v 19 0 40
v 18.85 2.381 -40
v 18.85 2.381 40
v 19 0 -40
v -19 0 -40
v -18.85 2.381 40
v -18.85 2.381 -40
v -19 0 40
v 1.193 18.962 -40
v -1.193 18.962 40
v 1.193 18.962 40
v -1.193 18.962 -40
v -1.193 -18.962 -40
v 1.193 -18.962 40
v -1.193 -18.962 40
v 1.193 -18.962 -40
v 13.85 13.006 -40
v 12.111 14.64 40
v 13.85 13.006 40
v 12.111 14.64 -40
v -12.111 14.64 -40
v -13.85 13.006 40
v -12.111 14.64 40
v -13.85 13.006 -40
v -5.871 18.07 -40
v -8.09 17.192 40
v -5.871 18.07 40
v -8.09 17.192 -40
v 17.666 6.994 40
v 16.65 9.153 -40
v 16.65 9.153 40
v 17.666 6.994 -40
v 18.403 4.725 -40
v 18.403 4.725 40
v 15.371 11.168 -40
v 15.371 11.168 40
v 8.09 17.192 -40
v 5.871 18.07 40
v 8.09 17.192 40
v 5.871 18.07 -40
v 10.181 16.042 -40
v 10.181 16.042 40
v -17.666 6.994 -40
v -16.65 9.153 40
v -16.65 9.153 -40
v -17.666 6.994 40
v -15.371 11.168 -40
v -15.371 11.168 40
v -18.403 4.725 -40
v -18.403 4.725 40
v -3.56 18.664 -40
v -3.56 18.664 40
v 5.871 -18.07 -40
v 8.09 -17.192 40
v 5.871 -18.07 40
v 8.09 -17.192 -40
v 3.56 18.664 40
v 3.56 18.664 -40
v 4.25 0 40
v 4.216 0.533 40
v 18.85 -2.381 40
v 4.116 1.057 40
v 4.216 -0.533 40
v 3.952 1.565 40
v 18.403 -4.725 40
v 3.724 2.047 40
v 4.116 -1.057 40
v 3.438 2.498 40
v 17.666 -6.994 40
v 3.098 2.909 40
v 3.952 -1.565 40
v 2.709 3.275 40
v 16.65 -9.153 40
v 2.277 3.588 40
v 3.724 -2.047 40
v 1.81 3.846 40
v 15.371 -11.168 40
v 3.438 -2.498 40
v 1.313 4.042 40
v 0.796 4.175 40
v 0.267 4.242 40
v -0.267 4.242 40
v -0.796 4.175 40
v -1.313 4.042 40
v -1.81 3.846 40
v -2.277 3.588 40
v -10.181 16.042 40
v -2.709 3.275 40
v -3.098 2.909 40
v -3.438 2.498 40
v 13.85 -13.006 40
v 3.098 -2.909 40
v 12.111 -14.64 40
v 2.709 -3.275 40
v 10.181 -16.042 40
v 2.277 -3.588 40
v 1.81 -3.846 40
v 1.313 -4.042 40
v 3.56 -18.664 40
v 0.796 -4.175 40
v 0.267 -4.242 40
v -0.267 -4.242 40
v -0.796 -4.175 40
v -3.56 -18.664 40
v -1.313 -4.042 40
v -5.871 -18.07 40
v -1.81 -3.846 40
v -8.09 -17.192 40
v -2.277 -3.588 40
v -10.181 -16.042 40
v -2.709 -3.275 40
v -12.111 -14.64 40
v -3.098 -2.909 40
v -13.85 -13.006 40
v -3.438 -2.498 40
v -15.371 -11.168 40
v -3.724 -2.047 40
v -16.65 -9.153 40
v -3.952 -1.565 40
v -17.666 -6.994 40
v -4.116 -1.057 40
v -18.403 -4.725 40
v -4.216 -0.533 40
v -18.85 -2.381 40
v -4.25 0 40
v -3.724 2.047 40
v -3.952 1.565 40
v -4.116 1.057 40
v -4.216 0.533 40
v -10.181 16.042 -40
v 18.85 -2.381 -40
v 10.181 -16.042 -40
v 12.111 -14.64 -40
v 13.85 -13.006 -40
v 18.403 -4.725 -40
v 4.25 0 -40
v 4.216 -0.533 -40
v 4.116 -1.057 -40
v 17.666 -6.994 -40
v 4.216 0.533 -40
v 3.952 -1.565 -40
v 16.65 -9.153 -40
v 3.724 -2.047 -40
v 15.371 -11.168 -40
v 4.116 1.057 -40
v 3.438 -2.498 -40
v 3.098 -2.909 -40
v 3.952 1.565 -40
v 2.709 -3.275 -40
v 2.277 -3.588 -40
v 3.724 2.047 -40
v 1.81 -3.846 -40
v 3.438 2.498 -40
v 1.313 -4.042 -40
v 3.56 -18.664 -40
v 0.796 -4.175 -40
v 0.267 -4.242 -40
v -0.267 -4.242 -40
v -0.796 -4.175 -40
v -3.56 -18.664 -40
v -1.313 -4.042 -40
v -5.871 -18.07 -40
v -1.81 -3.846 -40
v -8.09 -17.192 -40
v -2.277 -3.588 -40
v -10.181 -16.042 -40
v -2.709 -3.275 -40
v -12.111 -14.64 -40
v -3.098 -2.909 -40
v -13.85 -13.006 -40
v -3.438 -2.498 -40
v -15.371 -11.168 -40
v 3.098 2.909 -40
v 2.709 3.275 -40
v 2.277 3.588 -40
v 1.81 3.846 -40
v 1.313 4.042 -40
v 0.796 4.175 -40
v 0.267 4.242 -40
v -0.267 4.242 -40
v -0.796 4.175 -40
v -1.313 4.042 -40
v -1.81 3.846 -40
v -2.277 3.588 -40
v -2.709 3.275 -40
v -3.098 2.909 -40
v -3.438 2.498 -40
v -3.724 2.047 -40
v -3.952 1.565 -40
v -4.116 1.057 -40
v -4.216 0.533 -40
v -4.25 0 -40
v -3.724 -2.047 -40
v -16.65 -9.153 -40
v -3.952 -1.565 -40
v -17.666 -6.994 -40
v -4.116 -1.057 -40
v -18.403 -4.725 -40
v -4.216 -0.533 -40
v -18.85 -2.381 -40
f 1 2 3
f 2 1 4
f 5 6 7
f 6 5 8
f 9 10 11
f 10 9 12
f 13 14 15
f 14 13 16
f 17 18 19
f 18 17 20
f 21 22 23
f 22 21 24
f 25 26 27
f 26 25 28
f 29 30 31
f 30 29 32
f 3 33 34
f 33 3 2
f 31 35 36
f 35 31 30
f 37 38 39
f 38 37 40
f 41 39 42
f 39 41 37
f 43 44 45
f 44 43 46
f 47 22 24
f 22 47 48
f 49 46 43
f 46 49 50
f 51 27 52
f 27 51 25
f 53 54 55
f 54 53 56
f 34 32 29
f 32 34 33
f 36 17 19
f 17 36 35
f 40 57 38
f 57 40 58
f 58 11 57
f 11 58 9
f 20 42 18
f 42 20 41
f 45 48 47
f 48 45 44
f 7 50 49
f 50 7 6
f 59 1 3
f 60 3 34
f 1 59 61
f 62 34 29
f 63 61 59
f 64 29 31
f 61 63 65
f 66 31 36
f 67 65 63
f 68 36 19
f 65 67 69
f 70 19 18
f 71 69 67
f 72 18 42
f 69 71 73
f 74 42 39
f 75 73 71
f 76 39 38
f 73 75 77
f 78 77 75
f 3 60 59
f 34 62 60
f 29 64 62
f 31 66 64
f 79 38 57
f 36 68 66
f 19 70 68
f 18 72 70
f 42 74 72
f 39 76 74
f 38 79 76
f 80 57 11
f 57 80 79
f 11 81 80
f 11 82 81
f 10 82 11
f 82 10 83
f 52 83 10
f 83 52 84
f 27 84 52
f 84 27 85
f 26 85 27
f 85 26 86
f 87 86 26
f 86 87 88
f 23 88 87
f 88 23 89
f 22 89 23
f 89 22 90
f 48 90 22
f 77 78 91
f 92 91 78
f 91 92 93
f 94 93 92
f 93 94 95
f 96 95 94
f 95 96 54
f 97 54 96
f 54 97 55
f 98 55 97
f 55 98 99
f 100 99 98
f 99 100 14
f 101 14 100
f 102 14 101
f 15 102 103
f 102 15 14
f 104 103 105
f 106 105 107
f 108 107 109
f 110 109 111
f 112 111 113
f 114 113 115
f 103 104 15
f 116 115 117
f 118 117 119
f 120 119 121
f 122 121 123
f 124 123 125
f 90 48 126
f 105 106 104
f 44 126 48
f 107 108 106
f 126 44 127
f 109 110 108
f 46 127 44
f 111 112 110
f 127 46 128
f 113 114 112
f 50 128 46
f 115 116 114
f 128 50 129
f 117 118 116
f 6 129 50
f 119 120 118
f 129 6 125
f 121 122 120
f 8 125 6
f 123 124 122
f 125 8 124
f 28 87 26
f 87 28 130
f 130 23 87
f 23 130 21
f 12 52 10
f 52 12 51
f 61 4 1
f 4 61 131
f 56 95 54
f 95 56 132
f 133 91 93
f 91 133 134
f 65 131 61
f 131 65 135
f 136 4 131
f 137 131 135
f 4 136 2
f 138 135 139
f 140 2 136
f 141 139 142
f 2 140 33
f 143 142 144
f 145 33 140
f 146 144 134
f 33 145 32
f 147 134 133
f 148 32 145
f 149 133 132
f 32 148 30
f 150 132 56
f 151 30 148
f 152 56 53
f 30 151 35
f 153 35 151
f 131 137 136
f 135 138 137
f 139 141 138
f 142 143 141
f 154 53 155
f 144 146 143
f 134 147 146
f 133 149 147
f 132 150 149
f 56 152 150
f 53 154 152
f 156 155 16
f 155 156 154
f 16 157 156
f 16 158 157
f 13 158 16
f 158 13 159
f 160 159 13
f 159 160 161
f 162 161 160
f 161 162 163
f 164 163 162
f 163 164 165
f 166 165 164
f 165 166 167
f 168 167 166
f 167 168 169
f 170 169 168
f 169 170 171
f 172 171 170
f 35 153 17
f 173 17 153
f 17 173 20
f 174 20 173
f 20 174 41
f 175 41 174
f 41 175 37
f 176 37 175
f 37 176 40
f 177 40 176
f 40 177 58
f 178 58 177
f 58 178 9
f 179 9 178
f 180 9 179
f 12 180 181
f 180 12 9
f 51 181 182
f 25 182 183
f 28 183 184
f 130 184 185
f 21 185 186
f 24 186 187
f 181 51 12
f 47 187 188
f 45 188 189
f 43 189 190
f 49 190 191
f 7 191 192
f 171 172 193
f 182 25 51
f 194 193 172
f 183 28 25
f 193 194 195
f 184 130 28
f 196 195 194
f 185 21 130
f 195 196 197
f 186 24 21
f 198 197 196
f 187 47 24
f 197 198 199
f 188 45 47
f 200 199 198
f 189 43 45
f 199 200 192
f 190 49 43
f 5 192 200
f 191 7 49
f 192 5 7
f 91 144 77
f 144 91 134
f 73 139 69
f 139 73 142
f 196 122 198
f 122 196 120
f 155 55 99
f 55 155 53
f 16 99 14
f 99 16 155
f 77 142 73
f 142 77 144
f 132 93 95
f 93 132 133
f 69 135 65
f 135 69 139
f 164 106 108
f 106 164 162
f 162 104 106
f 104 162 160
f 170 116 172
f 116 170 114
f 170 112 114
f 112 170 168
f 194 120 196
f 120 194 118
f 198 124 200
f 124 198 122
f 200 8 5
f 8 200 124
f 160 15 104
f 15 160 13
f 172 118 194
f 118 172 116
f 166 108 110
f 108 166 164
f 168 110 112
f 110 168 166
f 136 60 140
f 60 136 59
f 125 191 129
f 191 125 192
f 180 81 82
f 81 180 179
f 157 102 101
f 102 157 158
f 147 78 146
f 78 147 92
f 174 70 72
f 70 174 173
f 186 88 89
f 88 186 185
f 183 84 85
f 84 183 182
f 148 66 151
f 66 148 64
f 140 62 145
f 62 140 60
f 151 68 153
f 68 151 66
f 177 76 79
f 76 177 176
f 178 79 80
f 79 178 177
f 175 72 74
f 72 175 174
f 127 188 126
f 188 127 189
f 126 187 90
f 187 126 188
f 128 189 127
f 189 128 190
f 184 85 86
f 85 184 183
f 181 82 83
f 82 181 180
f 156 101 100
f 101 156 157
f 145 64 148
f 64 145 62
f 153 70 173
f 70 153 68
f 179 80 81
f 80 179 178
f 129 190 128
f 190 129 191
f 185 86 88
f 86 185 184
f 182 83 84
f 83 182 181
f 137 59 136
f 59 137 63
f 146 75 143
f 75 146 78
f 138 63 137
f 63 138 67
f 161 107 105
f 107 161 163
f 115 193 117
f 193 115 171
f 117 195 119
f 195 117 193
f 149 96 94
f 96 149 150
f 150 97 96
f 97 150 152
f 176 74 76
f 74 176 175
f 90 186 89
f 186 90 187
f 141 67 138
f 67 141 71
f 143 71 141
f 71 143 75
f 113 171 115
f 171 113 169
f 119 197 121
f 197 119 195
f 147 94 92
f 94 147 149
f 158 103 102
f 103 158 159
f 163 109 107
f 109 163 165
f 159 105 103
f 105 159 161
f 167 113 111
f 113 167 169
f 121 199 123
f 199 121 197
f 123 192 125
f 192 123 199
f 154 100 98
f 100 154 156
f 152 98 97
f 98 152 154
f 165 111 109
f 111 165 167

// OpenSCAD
$fn = 50;


difference() {
	union() {
		translate(v = [0, 0, -40.0000000000]) {
			cylinder(h = 80, r = 19.0000000000);
		}
	}
	union() {
		translate(v = [0, 0, -100.0000000000]) {
			cylinder(h = 200, r = 4.2500000000);
		}
	}
}
